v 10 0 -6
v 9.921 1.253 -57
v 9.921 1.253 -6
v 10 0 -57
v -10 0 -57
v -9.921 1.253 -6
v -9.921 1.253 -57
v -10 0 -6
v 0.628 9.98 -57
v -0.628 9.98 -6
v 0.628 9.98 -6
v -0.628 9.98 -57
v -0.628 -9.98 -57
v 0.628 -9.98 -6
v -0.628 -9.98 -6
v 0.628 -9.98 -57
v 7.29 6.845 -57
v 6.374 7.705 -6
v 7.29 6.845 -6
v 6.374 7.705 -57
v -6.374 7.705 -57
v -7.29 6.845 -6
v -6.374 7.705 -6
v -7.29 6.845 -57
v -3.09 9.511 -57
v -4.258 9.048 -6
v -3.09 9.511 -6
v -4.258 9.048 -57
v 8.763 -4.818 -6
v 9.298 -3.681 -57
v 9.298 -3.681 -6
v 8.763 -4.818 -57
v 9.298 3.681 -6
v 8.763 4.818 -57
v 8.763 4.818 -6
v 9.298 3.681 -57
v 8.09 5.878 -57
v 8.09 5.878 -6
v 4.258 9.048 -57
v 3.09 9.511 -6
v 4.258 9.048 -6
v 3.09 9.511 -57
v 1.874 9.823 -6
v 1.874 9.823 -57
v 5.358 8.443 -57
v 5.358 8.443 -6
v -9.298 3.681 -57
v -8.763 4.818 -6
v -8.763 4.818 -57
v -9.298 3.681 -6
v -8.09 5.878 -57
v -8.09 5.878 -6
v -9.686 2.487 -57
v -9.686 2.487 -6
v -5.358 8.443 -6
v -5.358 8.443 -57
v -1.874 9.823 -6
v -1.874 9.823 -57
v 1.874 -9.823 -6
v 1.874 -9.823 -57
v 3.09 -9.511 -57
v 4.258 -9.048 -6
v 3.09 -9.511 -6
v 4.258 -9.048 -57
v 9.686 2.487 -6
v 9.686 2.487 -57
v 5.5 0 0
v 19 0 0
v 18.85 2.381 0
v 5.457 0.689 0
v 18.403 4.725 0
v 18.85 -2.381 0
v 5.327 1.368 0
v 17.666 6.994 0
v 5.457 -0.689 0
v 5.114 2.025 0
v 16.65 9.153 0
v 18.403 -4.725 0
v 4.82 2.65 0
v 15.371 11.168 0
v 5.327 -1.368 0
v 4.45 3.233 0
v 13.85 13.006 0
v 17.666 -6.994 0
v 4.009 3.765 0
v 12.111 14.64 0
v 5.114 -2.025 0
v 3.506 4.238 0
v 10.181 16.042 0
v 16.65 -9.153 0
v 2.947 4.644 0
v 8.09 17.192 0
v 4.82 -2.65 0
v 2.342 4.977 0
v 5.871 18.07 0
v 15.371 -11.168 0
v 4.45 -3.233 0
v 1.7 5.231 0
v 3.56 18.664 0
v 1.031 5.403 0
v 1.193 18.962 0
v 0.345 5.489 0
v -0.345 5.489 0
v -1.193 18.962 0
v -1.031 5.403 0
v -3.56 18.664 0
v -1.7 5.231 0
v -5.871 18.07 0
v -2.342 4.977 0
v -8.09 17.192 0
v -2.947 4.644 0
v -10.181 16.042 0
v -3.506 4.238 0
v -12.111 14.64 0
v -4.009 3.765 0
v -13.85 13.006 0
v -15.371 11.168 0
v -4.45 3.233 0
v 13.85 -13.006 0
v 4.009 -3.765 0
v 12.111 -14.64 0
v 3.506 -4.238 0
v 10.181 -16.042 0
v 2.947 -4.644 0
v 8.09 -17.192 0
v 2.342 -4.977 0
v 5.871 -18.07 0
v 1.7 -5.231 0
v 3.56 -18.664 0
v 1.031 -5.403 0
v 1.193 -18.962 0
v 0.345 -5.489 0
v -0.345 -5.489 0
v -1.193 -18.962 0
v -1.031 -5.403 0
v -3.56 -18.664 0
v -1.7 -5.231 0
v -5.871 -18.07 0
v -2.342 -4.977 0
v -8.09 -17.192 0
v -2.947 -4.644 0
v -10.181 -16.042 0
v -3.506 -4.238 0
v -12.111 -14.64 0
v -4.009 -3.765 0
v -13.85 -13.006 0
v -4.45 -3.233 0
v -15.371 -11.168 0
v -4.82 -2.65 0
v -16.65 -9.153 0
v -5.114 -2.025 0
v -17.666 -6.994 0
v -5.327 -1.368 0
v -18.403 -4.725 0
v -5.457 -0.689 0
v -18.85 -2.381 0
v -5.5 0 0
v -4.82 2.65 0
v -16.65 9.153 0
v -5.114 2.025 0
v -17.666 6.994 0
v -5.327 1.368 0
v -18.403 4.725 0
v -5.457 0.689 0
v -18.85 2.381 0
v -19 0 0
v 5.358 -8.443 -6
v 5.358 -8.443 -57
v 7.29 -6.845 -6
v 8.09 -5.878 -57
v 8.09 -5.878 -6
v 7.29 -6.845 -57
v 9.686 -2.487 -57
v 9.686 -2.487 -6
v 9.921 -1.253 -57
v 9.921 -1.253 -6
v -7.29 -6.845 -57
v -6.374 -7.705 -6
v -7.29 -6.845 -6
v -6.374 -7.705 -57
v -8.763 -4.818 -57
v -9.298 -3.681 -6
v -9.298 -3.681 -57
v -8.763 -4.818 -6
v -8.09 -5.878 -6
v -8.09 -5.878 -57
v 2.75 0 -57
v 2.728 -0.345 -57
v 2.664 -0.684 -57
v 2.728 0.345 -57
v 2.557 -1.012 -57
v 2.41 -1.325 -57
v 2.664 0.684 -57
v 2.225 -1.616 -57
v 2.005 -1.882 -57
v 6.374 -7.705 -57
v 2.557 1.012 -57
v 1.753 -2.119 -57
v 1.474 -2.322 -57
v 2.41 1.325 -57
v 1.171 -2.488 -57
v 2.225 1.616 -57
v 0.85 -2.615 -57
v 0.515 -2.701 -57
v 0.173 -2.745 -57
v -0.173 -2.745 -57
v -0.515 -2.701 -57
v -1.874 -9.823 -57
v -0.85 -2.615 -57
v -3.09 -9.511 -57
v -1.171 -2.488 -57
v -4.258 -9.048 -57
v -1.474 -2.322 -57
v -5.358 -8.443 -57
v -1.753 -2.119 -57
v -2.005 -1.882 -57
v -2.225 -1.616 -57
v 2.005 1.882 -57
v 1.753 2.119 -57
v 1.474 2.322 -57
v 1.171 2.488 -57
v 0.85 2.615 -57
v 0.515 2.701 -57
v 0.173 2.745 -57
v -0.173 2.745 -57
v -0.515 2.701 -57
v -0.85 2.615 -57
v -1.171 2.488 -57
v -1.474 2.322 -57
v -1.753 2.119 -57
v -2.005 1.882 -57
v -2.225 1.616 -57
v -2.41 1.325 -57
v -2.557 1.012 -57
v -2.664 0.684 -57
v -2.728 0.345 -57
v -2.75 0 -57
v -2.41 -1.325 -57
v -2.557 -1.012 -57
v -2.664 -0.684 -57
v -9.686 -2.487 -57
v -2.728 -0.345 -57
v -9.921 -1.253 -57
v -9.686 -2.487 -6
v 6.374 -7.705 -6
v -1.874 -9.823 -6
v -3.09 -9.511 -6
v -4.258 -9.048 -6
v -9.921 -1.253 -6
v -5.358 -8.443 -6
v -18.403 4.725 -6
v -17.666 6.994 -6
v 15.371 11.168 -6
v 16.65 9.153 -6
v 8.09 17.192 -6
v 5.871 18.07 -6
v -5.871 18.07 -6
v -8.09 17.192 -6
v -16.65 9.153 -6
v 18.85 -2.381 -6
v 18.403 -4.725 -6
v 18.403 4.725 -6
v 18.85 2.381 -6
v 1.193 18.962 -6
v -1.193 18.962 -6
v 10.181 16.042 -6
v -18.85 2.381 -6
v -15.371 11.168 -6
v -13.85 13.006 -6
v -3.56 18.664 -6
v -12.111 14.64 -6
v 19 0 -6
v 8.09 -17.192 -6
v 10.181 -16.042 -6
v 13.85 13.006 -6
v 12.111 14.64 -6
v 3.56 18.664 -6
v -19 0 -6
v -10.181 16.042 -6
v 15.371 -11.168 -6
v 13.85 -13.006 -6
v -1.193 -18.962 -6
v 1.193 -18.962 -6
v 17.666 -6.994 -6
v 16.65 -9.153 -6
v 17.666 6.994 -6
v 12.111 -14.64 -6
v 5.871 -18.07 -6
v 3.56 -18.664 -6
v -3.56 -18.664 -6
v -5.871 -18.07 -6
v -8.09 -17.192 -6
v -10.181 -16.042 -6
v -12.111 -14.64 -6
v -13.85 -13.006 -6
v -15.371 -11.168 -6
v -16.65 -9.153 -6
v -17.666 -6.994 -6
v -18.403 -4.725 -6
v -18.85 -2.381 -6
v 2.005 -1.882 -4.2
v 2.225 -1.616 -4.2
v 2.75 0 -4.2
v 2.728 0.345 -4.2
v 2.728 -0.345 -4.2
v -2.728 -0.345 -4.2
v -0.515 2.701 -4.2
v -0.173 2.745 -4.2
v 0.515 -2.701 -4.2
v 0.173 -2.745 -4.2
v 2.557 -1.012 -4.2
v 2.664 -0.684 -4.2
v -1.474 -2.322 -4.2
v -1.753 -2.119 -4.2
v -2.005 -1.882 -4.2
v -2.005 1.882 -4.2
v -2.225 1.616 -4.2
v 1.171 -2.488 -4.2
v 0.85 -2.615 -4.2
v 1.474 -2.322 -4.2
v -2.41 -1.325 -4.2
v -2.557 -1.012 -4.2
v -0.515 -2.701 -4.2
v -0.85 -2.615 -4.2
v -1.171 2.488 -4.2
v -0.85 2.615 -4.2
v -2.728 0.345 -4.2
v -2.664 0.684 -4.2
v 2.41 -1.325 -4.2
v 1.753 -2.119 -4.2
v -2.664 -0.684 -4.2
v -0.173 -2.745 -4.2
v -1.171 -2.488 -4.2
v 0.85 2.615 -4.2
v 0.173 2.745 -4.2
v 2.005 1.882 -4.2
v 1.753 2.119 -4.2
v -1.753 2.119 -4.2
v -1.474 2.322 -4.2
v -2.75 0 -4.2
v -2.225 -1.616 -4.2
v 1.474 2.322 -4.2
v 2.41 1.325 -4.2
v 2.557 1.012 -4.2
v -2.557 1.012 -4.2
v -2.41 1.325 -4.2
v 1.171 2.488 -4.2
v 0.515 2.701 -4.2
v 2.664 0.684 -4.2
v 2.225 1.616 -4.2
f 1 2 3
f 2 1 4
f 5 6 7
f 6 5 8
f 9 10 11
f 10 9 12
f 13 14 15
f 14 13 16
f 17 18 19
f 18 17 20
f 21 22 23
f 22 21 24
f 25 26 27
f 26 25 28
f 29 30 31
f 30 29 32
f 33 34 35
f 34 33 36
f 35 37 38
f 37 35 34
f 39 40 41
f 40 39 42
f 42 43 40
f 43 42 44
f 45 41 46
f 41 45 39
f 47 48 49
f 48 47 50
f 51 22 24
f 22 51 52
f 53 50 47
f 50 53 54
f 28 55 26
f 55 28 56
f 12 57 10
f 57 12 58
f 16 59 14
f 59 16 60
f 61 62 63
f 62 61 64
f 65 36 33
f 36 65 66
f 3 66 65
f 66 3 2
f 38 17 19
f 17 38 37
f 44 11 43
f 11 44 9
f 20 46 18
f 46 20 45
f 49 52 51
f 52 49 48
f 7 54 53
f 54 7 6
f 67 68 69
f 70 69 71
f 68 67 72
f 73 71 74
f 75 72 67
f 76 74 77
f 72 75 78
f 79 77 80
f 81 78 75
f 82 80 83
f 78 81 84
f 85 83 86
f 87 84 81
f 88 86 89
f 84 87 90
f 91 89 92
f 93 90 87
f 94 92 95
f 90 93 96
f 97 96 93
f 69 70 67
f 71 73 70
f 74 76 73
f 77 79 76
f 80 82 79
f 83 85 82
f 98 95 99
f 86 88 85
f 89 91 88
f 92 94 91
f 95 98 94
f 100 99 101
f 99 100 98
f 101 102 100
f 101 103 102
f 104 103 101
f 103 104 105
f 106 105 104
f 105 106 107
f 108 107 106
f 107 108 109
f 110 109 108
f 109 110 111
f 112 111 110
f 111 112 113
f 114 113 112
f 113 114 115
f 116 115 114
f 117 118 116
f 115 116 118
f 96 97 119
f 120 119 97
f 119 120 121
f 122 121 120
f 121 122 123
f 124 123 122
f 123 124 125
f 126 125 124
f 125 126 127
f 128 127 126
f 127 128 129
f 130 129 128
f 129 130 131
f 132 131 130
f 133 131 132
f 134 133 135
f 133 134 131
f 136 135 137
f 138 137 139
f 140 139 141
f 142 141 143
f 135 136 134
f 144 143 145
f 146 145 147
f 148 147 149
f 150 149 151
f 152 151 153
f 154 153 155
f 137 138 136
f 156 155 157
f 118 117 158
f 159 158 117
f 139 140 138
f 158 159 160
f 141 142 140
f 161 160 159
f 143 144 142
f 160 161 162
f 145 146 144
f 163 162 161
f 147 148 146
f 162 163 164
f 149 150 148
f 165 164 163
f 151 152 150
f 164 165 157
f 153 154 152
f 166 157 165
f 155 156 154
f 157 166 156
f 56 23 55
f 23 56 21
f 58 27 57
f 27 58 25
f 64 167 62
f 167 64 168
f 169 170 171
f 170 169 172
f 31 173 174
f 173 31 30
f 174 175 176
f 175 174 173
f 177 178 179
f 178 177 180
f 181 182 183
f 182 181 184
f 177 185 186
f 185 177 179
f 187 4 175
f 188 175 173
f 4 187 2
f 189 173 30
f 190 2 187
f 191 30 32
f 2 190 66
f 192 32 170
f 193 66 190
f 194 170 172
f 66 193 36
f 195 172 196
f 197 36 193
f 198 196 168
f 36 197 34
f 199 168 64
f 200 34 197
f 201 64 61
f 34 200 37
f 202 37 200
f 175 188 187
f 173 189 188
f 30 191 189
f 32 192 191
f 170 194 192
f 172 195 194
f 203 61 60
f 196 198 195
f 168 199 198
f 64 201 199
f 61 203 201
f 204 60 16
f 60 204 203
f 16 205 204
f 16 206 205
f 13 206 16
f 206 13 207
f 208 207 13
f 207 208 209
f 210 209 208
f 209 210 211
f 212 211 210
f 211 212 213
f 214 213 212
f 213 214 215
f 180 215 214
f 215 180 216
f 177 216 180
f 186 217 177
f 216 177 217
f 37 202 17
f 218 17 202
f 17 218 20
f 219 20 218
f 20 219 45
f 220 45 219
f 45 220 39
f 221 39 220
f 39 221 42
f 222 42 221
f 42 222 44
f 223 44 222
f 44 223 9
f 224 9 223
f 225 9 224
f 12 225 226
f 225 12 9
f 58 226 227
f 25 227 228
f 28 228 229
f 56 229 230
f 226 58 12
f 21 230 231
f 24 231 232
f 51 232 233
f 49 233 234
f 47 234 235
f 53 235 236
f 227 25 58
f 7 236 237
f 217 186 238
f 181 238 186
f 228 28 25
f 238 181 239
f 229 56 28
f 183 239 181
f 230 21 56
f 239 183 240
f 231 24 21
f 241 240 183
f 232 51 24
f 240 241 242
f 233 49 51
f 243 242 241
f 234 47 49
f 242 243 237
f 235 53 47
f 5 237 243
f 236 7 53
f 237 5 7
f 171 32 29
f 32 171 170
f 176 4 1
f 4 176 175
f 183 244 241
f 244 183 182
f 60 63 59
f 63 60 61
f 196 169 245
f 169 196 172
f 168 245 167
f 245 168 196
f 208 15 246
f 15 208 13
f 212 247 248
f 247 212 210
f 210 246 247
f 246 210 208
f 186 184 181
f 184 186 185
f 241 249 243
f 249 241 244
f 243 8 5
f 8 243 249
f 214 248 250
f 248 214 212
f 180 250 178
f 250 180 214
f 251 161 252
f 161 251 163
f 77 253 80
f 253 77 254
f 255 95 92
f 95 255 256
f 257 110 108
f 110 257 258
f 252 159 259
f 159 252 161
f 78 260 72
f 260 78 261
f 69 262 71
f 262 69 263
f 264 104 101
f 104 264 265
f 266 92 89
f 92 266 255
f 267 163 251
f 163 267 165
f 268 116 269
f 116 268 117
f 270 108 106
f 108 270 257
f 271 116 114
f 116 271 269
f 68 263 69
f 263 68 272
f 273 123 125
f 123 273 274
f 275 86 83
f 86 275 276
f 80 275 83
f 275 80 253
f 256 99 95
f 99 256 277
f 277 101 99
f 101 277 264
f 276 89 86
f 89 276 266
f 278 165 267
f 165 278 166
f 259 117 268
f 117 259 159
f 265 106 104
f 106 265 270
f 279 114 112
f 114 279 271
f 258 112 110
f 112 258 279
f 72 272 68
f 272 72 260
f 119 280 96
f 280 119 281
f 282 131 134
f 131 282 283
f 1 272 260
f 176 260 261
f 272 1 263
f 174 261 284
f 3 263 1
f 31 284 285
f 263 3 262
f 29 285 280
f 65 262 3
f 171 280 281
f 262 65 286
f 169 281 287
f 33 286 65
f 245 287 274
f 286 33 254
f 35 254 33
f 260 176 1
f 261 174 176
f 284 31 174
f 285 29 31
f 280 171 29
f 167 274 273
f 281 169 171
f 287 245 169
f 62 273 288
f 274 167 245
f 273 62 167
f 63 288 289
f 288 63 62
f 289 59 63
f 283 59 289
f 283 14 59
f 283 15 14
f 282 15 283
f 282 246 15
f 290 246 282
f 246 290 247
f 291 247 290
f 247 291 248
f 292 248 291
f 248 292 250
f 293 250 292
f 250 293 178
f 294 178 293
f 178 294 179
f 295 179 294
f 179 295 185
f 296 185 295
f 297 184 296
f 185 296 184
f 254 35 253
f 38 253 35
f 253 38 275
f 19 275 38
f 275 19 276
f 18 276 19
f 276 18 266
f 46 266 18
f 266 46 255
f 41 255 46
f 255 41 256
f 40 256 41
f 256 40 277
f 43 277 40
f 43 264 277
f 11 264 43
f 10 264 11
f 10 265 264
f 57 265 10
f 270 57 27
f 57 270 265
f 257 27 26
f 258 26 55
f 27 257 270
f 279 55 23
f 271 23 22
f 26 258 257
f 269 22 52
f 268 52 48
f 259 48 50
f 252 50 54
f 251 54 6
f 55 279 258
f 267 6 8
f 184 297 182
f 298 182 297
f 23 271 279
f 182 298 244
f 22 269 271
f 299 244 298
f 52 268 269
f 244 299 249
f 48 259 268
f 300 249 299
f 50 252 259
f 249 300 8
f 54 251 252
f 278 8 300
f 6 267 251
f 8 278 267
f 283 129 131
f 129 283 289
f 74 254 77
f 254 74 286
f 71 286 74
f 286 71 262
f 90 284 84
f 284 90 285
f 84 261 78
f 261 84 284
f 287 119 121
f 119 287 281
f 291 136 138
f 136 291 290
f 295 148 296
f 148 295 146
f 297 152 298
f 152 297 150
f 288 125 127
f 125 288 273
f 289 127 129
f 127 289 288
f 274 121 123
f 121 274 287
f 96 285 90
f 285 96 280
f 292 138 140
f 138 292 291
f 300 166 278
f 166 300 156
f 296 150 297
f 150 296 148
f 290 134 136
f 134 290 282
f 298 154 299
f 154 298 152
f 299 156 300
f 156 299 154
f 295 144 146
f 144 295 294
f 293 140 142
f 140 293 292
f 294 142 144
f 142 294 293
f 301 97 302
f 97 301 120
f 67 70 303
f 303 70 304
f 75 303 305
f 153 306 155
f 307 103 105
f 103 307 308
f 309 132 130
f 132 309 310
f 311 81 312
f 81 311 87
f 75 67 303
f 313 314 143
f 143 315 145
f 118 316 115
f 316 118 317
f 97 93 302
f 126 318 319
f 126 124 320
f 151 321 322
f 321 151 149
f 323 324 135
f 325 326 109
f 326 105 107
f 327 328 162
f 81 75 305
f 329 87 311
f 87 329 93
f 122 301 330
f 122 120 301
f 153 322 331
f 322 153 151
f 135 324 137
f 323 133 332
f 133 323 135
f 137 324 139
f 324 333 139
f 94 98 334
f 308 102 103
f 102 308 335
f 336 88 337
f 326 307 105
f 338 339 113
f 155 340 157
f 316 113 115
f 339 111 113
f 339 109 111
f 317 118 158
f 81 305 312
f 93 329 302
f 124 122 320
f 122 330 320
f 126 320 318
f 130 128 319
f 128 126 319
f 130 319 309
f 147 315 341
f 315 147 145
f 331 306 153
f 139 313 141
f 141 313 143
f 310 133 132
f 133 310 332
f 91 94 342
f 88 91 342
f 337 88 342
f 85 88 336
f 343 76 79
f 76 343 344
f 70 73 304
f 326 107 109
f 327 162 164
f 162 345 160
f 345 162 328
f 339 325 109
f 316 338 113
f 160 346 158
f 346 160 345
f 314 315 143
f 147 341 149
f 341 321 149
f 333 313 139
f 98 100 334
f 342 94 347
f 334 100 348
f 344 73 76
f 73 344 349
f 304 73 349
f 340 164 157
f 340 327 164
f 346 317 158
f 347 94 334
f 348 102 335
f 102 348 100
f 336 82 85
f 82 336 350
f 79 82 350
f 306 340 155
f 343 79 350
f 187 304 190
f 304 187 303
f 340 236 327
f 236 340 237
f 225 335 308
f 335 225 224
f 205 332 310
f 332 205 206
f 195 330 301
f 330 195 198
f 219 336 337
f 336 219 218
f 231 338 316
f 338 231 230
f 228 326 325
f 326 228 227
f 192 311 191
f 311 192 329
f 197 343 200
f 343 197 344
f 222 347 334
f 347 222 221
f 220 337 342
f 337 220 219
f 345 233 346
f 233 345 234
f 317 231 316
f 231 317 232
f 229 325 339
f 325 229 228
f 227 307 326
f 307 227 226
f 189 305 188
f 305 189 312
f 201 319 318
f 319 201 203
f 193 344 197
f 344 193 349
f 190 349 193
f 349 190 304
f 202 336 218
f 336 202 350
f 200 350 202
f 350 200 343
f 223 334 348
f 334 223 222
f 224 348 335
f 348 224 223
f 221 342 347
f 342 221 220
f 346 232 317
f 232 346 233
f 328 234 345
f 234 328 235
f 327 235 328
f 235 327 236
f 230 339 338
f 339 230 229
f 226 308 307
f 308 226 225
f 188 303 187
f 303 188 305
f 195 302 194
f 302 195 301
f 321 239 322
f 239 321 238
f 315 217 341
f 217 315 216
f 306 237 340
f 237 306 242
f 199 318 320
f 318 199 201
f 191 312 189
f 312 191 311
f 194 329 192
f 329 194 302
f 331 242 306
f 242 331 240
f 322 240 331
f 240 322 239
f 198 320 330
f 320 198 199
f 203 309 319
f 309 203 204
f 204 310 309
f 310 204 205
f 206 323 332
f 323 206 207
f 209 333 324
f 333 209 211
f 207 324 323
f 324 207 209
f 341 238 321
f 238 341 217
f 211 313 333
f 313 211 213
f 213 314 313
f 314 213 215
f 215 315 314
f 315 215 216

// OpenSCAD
$fn = 50;


difference() {
	union() {
		translate(v = [0, 0, -57.0000000000]) {
			cylinder(h = 57, r = 10.0000000000);
		}
		translate(v = [0, 0, -6.0000000000]) {
			cylinder(h = 6, r = 19.0000000000);
		}
	}
	union() {
		translate(v = [0, 0, 0]) {
			rotate(a = [0, 0, 0]) {
				difference() {
					union() {
						#translate(v = [0, 0, -57.0000000000]) {
							cylinder(h = 57, r = 2.2500000000);
						}
						#translate(v = [0, 0, -4.2000000000]) {
							cylinder(h = 4.2000000000, r = 10.0000000000, r1 = 2.7500000000, r2 = 5.5000000000);
						}
						#translate(v = [0, 0, -57.0000000000]) {
							cylinder(h = 57, r = 2.7500000000);
						}
						#translate(v = [0, 0, -57.0000000000]) {
							cylinder(h = 57, r = 2.2500000000);
						}
					}
					union();
				}
			}
		}
	}
}
